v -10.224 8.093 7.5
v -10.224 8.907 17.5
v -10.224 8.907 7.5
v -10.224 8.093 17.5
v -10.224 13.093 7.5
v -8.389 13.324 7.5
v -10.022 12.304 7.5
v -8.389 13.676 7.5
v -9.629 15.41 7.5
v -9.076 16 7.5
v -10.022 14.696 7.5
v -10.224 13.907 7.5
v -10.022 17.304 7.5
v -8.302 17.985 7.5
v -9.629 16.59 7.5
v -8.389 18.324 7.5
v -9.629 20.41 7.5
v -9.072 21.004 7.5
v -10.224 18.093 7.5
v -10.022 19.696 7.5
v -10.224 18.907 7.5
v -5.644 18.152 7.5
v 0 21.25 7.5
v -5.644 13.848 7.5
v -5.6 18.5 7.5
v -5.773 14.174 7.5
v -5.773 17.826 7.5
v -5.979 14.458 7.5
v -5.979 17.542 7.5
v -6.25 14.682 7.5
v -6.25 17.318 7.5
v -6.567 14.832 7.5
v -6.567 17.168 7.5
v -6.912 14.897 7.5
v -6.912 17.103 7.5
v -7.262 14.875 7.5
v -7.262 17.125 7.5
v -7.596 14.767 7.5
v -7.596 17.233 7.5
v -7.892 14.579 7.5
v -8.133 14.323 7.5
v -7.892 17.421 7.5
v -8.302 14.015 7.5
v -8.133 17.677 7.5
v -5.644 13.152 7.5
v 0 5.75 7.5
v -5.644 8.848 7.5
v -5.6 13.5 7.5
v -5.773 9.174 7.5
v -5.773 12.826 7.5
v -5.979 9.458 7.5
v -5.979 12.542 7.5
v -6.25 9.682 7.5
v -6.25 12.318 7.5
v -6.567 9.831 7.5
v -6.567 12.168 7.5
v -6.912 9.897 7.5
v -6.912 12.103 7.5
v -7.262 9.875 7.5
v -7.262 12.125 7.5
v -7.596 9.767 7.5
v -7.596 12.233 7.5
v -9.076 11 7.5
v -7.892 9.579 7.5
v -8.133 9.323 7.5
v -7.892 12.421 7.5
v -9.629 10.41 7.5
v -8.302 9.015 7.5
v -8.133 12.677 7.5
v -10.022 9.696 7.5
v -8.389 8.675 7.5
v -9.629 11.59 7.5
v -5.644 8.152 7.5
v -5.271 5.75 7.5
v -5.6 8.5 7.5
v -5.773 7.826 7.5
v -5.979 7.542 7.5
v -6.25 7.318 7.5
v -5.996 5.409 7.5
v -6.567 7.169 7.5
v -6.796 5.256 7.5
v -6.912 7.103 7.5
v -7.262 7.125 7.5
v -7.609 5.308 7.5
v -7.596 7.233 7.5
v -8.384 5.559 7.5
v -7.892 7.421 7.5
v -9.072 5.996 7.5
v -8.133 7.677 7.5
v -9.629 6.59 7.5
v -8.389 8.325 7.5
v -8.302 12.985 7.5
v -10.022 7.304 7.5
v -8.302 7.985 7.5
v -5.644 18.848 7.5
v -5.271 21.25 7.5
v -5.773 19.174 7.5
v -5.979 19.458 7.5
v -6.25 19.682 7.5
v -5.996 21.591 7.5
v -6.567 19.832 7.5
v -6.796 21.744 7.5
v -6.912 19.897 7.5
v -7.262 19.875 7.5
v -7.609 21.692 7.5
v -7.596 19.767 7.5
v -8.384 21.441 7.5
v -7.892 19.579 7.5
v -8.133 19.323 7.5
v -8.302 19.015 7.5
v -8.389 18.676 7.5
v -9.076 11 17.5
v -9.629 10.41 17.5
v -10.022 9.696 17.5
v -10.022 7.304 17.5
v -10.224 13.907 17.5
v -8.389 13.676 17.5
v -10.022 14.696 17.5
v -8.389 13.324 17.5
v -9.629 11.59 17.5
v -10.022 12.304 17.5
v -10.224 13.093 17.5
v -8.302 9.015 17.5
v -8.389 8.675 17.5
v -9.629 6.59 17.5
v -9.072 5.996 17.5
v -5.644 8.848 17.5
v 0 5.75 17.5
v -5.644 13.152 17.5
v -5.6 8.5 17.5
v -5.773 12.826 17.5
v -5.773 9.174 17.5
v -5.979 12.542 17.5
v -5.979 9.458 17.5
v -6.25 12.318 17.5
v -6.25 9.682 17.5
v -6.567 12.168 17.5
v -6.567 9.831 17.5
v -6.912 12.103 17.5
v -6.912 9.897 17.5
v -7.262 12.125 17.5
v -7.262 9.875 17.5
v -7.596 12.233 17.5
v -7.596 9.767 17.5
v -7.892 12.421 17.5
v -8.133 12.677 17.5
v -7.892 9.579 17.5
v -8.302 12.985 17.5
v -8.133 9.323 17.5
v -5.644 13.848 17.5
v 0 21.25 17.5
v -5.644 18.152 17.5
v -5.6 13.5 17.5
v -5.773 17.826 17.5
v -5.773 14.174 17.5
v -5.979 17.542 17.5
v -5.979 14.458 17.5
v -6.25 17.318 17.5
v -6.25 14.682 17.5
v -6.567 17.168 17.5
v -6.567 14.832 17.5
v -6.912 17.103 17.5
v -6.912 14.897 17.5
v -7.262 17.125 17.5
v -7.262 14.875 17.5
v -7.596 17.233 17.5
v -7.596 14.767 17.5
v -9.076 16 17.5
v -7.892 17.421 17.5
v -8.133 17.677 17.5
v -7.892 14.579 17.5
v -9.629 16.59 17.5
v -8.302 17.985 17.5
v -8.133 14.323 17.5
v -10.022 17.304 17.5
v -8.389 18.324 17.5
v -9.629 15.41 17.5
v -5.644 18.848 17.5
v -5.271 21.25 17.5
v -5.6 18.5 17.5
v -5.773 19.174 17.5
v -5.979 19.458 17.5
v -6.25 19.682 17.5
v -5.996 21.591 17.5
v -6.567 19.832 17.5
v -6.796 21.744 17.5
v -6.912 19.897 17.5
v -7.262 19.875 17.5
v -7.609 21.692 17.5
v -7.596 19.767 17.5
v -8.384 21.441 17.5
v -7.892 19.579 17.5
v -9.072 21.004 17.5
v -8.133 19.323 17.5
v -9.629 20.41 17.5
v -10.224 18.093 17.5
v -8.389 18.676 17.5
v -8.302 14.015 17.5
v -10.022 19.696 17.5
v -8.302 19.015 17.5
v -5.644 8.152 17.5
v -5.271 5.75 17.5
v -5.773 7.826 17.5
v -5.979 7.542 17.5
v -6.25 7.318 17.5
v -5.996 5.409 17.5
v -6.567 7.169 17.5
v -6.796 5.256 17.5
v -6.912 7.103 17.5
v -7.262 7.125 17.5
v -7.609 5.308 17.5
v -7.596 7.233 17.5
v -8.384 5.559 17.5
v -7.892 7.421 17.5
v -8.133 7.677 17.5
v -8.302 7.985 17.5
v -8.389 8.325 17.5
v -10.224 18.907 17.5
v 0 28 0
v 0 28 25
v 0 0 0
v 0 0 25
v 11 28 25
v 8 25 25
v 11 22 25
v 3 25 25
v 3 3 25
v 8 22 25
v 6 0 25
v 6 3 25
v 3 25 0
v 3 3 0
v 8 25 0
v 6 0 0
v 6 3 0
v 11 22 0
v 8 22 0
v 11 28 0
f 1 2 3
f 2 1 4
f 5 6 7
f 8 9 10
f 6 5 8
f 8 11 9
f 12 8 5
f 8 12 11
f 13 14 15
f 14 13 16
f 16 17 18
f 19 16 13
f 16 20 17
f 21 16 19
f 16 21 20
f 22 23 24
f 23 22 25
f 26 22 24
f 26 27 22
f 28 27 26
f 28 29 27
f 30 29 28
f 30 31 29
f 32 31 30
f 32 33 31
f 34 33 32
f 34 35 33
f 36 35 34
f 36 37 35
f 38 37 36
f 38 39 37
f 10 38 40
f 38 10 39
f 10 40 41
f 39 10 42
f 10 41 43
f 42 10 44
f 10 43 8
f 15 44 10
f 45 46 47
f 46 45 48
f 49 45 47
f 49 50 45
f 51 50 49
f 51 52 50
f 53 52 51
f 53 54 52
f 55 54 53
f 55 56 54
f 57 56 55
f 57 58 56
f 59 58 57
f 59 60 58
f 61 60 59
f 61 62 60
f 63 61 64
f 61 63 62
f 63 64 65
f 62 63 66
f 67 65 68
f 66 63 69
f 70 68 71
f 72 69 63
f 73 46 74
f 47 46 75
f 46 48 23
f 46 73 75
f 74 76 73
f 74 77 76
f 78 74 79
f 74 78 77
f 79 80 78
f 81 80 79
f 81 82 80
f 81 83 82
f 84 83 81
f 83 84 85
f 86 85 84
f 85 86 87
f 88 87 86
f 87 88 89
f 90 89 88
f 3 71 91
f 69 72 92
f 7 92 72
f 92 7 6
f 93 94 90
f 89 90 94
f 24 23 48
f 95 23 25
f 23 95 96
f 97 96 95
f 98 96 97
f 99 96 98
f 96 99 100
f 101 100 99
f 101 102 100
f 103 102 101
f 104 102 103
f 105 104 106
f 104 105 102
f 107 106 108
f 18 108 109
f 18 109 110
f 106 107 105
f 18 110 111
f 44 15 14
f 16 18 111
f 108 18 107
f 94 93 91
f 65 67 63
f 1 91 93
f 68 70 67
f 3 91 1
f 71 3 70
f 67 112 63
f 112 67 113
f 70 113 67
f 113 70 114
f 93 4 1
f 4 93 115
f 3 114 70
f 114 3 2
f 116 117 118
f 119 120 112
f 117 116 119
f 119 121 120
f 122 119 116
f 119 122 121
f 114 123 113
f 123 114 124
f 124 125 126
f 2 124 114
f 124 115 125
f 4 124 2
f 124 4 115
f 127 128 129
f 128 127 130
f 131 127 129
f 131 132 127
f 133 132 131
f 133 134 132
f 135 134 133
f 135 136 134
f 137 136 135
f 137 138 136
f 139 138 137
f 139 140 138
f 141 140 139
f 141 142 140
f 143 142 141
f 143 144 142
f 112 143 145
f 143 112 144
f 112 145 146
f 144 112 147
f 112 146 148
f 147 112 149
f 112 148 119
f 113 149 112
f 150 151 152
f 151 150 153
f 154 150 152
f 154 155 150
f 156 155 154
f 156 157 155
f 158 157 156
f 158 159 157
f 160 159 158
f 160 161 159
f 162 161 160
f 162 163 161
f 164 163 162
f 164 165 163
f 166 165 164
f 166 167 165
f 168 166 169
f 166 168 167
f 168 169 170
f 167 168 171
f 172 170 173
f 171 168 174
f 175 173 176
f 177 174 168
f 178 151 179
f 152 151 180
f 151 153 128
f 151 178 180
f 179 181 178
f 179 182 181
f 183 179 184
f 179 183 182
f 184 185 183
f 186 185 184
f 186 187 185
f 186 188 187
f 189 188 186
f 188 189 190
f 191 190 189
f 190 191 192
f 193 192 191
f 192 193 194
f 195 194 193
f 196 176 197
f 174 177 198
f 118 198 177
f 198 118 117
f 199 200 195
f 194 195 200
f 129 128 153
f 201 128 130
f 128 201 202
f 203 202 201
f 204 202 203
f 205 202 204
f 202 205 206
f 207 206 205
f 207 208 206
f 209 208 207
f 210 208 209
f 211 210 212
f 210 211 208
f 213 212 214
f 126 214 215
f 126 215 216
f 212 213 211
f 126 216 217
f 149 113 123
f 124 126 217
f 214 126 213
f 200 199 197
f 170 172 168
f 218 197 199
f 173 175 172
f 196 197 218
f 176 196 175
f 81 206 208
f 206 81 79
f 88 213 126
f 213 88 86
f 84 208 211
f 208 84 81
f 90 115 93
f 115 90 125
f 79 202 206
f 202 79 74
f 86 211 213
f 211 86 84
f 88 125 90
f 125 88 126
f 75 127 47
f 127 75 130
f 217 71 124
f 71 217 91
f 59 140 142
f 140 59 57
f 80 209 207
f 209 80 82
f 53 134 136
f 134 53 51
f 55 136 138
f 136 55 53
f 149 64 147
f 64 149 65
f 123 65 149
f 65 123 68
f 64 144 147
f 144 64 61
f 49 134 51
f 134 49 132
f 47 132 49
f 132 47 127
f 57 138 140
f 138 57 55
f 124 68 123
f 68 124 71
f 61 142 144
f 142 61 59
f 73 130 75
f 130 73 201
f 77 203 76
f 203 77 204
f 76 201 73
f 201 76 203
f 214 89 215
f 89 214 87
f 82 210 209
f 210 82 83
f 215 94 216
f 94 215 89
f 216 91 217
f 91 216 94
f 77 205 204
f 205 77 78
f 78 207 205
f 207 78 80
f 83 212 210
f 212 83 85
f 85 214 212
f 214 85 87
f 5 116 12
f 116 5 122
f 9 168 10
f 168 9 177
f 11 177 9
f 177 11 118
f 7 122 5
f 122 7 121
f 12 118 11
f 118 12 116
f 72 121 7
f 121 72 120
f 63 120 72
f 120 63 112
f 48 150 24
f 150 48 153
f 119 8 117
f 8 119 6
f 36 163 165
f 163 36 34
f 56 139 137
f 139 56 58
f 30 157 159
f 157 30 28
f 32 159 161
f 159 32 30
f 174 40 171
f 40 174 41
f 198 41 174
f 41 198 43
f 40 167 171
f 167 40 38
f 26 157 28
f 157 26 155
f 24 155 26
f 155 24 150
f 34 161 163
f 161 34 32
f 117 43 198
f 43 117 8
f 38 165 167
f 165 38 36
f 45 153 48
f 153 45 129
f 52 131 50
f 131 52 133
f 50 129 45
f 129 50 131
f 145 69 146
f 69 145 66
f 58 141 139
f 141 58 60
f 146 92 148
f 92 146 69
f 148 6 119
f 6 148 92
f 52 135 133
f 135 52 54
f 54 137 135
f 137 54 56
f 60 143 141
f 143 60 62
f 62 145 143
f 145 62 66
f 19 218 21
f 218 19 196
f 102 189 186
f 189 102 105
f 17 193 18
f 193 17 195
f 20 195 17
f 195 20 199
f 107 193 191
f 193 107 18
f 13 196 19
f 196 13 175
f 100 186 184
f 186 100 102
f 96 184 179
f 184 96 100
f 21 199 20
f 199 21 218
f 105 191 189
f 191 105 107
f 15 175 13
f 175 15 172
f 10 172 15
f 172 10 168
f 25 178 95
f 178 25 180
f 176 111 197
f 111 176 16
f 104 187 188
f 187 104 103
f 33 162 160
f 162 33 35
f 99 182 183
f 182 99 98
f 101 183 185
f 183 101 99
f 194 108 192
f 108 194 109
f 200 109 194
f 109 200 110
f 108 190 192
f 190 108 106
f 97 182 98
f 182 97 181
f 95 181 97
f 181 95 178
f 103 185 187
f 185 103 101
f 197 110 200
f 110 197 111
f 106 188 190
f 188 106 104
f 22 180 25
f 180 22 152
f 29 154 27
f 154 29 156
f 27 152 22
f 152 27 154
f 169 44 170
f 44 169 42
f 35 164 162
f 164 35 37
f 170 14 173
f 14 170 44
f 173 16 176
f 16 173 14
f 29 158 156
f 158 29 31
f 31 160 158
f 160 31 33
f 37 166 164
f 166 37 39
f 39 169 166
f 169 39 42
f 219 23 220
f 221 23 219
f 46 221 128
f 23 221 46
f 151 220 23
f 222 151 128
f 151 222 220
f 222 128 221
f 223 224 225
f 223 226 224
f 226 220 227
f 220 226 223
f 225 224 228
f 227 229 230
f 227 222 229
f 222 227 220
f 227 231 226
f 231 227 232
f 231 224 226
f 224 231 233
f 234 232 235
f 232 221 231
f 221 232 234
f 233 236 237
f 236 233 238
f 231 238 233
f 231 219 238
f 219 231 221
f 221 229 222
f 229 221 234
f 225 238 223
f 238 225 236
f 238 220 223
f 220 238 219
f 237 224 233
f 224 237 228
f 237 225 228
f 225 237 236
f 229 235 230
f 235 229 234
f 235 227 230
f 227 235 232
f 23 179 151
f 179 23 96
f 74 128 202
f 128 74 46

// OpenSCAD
/*
 * Inspired by the "TinyBoy / Fabrikator mini Cam holder"
 * by "andy_a":
 * http://www.thingiverse.com/thing:1434698
 *
 * Created by:
 * Thomas Buck <xythobuz@xythobuz.de> in April 2016
 *
 * Licensed under the Creative Commons - Attribution license.
 */

// -----------------------------------------------------------

height = 10;
bodyHeight = 25;
wallSize = 3;
lipSize = 3;
fullSize = 28;
gap = 5;
screwInner = 2.8;
screwOuter = 6.5;

$fn = 25;

// -----------------------------------------------------------

module screw() {
    difference() {
        cylinder(d = screwOuter, h = height);
        translate([0, 0, -1])
            cylinder(d = screwInner, h = height + 2);
    }
}

// -----------------------------------------------------------

// lower body
cube([wallSize, fullSize - wallSize, bodyHeight]);

// upper border
translate([0, fullSize - wallSize, 0])
    cube([(2 * wallSize) + gap, wallSize, bodyHeight]);

// upper lip
translate([wallSize + gap, fullSize - (2 * wallSize), 0])
    cube([wallSize, wallSize, bodyHeight]);

// lower border
translate([wallSize, 0, 0])
    cube([lipSize, lipSize, bodyHeight]);

//translate([-7, 3.5, (bodyHeight - height) / 2])
    //screw();

translate([-7, 8.5, (bodyHeight - height) / 2])
    screw();

translate([-7, 13.5, (bodyHeight - height) / 2])
    screw();

translate([-7, 18.5, (bodyHeight - height) / 2])
    screw();

//translate([-7, 23.5, (bodyHeight - height) / 2])
    //screw();

translate([-5.5, 5.75, (bodyHeight - height) / 2])
    cube([5.5, 15.5, height]);
